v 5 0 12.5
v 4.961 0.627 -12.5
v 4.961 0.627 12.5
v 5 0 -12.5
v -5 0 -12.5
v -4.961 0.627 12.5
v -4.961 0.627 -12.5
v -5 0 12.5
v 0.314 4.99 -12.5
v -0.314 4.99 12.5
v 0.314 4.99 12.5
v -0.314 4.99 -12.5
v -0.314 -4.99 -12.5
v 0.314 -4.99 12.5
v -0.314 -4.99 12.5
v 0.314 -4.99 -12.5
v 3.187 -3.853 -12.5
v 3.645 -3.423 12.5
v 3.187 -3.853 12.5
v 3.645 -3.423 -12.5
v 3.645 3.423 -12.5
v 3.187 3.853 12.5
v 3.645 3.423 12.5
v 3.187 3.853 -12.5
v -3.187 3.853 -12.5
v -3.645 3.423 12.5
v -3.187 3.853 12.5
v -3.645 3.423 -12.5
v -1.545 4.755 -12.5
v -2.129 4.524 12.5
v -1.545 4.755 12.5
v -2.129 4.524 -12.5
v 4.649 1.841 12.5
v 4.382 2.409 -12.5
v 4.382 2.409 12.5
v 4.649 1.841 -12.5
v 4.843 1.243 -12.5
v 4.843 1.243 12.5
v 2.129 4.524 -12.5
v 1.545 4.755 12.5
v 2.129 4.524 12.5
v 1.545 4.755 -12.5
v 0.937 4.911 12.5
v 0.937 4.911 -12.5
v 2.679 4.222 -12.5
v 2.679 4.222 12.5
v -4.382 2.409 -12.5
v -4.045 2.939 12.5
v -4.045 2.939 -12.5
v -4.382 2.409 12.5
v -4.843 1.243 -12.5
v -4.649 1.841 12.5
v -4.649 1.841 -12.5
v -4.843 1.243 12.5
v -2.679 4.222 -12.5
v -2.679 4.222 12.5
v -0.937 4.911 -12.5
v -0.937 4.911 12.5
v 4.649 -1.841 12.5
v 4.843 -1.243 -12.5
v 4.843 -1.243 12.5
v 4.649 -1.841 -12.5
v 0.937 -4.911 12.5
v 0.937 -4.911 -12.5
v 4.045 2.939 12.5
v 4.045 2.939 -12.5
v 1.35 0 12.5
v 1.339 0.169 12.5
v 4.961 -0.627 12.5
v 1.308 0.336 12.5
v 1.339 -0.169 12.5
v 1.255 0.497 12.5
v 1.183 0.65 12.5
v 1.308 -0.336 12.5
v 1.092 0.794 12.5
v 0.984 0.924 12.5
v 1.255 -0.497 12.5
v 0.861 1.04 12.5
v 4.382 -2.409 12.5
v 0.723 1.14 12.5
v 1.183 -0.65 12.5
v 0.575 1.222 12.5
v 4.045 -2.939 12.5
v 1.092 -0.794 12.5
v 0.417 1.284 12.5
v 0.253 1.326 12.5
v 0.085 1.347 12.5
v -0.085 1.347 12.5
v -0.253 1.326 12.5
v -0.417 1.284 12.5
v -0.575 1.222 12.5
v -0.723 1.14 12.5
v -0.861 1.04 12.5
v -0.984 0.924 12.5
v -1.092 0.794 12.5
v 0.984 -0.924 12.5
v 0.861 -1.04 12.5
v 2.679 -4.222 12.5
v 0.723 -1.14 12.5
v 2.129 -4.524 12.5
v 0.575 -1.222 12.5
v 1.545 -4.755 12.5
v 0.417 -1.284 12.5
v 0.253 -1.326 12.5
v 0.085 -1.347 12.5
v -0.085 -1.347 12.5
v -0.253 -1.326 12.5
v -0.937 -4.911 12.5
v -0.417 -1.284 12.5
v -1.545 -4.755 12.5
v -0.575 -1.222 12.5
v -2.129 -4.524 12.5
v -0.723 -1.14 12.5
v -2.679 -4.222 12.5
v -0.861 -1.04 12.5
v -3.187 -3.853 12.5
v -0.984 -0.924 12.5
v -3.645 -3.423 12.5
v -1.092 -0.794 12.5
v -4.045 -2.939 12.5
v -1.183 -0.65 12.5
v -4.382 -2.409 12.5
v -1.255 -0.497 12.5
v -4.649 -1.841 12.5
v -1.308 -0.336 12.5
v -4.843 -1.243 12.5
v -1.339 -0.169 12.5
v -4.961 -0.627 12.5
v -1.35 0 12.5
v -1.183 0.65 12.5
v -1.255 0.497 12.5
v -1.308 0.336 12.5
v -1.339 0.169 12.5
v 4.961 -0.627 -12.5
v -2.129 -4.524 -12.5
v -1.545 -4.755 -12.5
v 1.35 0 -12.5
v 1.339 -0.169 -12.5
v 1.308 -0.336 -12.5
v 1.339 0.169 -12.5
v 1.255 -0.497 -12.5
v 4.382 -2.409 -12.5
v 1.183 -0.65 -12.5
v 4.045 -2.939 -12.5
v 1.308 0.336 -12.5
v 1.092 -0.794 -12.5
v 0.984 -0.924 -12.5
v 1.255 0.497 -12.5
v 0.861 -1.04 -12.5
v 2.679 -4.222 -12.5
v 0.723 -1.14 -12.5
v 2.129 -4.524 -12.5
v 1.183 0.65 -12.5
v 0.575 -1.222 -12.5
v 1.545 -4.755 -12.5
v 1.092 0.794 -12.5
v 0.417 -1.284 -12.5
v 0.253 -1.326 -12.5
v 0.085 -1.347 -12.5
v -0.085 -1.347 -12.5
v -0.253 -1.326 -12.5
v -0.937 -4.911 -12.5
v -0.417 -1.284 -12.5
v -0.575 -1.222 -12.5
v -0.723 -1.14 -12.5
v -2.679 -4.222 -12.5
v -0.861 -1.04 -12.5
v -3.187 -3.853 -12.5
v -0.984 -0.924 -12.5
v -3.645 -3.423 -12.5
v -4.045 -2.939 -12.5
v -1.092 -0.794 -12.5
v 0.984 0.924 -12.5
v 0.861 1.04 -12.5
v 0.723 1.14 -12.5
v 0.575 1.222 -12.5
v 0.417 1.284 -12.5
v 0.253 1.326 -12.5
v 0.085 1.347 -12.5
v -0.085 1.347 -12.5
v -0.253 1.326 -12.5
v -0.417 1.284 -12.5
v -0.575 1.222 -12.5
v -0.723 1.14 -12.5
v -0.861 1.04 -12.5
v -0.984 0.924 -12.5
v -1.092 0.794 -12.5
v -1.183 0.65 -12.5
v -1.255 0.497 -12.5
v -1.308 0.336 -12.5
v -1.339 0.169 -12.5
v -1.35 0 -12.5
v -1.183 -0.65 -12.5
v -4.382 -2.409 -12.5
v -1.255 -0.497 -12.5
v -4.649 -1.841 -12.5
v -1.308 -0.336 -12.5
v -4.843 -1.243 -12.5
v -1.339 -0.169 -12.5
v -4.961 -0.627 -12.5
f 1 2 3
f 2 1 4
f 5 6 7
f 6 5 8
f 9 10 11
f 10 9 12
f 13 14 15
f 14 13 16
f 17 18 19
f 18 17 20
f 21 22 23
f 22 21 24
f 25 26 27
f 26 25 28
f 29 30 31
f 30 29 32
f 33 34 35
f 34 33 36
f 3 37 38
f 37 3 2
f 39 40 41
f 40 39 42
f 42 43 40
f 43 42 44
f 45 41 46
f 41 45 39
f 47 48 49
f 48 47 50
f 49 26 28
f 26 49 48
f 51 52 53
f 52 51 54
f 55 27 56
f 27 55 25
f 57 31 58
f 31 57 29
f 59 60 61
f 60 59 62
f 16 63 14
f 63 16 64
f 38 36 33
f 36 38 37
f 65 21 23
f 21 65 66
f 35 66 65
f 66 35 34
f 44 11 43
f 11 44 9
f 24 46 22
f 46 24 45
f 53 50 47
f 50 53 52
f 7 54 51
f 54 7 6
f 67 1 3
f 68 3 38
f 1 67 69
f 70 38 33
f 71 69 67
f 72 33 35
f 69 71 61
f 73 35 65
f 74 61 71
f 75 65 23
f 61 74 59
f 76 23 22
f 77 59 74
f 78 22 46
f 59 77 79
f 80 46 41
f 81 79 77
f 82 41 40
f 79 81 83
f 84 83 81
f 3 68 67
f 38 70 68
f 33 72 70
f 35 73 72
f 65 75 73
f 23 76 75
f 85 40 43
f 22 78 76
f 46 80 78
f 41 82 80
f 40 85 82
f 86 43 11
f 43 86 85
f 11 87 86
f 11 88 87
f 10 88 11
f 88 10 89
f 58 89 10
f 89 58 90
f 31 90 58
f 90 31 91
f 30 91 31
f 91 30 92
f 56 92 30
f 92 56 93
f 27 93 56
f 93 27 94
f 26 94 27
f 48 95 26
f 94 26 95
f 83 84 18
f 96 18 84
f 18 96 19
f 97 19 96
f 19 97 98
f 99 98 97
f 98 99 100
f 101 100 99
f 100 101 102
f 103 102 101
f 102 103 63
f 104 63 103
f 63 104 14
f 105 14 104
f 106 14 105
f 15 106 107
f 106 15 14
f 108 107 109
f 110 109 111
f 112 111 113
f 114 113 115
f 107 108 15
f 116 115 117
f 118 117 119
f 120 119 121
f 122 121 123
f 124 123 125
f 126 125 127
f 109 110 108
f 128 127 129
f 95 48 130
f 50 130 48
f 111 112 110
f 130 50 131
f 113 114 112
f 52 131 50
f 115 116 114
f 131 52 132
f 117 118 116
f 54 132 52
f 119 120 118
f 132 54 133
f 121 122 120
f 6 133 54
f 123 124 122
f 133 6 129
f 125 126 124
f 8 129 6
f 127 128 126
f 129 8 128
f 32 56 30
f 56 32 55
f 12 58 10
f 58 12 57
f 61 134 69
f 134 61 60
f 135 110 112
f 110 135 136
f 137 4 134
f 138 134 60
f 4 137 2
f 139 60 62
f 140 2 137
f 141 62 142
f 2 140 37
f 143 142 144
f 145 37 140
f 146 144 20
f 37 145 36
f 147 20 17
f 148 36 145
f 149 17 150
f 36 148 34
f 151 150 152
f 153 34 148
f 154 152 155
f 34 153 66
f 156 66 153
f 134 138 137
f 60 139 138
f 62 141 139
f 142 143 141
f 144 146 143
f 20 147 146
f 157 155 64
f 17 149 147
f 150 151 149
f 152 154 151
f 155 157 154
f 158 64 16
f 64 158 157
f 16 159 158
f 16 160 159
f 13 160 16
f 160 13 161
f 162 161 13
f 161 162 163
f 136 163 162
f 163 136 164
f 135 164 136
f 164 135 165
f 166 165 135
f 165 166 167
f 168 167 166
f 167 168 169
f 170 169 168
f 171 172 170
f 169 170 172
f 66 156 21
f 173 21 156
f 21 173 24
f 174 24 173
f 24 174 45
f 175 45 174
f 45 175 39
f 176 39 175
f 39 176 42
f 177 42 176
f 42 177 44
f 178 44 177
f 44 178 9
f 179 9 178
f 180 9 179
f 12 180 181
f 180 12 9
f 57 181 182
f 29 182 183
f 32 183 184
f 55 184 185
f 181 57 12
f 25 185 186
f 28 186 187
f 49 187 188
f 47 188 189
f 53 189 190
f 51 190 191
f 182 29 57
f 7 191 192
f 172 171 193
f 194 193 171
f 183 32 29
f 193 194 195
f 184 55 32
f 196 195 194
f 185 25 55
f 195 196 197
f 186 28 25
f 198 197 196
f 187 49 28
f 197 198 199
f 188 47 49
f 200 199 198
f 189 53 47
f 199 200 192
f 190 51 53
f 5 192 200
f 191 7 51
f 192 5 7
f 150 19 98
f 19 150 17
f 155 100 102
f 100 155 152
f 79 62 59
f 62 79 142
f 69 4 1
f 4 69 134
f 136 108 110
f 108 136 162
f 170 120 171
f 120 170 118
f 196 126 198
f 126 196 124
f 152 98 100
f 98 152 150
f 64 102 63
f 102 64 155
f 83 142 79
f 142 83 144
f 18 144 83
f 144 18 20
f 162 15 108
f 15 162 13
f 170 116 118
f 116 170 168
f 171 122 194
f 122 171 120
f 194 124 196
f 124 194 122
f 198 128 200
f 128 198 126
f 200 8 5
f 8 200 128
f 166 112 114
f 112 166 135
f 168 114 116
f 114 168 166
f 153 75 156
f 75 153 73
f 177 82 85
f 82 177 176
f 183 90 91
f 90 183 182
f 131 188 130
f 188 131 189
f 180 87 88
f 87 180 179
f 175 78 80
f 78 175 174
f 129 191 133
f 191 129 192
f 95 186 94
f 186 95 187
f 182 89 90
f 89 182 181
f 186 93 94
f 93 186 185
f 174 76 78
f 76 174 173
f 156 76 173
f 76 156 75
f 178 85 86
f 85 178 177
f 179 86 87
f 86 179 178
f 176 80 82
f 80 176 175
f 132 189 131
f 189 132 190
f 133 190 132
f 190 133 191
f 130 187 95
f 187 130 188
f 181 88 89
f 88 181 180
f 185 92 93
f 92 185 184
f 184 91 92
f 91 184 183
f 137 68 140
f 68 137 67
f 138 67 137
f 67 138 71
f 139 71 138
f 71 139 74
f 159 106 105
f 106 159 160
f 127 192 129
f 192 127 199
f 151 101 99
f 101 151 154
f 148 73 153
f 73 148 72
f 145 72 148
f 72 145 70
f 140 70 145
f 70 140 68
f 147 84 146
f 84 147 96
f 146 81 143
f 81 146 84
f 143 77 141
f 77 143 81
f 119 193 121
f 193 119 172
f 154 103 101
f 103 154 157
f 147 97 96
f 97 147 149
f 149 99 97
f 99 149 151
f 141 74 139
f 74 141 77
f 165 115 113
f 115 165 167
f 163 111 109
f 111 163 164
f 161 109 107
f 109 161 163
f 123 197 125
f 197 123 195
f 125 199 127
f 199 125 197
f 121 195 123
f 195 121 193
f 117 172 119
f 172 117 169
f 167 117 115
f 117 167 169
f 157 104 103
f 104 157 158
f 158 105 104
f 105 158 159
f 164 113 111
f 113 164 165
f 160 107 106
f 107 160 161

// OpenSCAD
$fn = 50;


difference() {
	union() {
		translate(v = [0, 0, -12.5000000000]) {
			cylinder(h = 25, r = 5.0000000000);
		}
	}
	union() {
		translate(v = [0, 0, -100.0000000000]) {
			cylinder(h = 200, r = 1.3500000000);
		}
	}
}
